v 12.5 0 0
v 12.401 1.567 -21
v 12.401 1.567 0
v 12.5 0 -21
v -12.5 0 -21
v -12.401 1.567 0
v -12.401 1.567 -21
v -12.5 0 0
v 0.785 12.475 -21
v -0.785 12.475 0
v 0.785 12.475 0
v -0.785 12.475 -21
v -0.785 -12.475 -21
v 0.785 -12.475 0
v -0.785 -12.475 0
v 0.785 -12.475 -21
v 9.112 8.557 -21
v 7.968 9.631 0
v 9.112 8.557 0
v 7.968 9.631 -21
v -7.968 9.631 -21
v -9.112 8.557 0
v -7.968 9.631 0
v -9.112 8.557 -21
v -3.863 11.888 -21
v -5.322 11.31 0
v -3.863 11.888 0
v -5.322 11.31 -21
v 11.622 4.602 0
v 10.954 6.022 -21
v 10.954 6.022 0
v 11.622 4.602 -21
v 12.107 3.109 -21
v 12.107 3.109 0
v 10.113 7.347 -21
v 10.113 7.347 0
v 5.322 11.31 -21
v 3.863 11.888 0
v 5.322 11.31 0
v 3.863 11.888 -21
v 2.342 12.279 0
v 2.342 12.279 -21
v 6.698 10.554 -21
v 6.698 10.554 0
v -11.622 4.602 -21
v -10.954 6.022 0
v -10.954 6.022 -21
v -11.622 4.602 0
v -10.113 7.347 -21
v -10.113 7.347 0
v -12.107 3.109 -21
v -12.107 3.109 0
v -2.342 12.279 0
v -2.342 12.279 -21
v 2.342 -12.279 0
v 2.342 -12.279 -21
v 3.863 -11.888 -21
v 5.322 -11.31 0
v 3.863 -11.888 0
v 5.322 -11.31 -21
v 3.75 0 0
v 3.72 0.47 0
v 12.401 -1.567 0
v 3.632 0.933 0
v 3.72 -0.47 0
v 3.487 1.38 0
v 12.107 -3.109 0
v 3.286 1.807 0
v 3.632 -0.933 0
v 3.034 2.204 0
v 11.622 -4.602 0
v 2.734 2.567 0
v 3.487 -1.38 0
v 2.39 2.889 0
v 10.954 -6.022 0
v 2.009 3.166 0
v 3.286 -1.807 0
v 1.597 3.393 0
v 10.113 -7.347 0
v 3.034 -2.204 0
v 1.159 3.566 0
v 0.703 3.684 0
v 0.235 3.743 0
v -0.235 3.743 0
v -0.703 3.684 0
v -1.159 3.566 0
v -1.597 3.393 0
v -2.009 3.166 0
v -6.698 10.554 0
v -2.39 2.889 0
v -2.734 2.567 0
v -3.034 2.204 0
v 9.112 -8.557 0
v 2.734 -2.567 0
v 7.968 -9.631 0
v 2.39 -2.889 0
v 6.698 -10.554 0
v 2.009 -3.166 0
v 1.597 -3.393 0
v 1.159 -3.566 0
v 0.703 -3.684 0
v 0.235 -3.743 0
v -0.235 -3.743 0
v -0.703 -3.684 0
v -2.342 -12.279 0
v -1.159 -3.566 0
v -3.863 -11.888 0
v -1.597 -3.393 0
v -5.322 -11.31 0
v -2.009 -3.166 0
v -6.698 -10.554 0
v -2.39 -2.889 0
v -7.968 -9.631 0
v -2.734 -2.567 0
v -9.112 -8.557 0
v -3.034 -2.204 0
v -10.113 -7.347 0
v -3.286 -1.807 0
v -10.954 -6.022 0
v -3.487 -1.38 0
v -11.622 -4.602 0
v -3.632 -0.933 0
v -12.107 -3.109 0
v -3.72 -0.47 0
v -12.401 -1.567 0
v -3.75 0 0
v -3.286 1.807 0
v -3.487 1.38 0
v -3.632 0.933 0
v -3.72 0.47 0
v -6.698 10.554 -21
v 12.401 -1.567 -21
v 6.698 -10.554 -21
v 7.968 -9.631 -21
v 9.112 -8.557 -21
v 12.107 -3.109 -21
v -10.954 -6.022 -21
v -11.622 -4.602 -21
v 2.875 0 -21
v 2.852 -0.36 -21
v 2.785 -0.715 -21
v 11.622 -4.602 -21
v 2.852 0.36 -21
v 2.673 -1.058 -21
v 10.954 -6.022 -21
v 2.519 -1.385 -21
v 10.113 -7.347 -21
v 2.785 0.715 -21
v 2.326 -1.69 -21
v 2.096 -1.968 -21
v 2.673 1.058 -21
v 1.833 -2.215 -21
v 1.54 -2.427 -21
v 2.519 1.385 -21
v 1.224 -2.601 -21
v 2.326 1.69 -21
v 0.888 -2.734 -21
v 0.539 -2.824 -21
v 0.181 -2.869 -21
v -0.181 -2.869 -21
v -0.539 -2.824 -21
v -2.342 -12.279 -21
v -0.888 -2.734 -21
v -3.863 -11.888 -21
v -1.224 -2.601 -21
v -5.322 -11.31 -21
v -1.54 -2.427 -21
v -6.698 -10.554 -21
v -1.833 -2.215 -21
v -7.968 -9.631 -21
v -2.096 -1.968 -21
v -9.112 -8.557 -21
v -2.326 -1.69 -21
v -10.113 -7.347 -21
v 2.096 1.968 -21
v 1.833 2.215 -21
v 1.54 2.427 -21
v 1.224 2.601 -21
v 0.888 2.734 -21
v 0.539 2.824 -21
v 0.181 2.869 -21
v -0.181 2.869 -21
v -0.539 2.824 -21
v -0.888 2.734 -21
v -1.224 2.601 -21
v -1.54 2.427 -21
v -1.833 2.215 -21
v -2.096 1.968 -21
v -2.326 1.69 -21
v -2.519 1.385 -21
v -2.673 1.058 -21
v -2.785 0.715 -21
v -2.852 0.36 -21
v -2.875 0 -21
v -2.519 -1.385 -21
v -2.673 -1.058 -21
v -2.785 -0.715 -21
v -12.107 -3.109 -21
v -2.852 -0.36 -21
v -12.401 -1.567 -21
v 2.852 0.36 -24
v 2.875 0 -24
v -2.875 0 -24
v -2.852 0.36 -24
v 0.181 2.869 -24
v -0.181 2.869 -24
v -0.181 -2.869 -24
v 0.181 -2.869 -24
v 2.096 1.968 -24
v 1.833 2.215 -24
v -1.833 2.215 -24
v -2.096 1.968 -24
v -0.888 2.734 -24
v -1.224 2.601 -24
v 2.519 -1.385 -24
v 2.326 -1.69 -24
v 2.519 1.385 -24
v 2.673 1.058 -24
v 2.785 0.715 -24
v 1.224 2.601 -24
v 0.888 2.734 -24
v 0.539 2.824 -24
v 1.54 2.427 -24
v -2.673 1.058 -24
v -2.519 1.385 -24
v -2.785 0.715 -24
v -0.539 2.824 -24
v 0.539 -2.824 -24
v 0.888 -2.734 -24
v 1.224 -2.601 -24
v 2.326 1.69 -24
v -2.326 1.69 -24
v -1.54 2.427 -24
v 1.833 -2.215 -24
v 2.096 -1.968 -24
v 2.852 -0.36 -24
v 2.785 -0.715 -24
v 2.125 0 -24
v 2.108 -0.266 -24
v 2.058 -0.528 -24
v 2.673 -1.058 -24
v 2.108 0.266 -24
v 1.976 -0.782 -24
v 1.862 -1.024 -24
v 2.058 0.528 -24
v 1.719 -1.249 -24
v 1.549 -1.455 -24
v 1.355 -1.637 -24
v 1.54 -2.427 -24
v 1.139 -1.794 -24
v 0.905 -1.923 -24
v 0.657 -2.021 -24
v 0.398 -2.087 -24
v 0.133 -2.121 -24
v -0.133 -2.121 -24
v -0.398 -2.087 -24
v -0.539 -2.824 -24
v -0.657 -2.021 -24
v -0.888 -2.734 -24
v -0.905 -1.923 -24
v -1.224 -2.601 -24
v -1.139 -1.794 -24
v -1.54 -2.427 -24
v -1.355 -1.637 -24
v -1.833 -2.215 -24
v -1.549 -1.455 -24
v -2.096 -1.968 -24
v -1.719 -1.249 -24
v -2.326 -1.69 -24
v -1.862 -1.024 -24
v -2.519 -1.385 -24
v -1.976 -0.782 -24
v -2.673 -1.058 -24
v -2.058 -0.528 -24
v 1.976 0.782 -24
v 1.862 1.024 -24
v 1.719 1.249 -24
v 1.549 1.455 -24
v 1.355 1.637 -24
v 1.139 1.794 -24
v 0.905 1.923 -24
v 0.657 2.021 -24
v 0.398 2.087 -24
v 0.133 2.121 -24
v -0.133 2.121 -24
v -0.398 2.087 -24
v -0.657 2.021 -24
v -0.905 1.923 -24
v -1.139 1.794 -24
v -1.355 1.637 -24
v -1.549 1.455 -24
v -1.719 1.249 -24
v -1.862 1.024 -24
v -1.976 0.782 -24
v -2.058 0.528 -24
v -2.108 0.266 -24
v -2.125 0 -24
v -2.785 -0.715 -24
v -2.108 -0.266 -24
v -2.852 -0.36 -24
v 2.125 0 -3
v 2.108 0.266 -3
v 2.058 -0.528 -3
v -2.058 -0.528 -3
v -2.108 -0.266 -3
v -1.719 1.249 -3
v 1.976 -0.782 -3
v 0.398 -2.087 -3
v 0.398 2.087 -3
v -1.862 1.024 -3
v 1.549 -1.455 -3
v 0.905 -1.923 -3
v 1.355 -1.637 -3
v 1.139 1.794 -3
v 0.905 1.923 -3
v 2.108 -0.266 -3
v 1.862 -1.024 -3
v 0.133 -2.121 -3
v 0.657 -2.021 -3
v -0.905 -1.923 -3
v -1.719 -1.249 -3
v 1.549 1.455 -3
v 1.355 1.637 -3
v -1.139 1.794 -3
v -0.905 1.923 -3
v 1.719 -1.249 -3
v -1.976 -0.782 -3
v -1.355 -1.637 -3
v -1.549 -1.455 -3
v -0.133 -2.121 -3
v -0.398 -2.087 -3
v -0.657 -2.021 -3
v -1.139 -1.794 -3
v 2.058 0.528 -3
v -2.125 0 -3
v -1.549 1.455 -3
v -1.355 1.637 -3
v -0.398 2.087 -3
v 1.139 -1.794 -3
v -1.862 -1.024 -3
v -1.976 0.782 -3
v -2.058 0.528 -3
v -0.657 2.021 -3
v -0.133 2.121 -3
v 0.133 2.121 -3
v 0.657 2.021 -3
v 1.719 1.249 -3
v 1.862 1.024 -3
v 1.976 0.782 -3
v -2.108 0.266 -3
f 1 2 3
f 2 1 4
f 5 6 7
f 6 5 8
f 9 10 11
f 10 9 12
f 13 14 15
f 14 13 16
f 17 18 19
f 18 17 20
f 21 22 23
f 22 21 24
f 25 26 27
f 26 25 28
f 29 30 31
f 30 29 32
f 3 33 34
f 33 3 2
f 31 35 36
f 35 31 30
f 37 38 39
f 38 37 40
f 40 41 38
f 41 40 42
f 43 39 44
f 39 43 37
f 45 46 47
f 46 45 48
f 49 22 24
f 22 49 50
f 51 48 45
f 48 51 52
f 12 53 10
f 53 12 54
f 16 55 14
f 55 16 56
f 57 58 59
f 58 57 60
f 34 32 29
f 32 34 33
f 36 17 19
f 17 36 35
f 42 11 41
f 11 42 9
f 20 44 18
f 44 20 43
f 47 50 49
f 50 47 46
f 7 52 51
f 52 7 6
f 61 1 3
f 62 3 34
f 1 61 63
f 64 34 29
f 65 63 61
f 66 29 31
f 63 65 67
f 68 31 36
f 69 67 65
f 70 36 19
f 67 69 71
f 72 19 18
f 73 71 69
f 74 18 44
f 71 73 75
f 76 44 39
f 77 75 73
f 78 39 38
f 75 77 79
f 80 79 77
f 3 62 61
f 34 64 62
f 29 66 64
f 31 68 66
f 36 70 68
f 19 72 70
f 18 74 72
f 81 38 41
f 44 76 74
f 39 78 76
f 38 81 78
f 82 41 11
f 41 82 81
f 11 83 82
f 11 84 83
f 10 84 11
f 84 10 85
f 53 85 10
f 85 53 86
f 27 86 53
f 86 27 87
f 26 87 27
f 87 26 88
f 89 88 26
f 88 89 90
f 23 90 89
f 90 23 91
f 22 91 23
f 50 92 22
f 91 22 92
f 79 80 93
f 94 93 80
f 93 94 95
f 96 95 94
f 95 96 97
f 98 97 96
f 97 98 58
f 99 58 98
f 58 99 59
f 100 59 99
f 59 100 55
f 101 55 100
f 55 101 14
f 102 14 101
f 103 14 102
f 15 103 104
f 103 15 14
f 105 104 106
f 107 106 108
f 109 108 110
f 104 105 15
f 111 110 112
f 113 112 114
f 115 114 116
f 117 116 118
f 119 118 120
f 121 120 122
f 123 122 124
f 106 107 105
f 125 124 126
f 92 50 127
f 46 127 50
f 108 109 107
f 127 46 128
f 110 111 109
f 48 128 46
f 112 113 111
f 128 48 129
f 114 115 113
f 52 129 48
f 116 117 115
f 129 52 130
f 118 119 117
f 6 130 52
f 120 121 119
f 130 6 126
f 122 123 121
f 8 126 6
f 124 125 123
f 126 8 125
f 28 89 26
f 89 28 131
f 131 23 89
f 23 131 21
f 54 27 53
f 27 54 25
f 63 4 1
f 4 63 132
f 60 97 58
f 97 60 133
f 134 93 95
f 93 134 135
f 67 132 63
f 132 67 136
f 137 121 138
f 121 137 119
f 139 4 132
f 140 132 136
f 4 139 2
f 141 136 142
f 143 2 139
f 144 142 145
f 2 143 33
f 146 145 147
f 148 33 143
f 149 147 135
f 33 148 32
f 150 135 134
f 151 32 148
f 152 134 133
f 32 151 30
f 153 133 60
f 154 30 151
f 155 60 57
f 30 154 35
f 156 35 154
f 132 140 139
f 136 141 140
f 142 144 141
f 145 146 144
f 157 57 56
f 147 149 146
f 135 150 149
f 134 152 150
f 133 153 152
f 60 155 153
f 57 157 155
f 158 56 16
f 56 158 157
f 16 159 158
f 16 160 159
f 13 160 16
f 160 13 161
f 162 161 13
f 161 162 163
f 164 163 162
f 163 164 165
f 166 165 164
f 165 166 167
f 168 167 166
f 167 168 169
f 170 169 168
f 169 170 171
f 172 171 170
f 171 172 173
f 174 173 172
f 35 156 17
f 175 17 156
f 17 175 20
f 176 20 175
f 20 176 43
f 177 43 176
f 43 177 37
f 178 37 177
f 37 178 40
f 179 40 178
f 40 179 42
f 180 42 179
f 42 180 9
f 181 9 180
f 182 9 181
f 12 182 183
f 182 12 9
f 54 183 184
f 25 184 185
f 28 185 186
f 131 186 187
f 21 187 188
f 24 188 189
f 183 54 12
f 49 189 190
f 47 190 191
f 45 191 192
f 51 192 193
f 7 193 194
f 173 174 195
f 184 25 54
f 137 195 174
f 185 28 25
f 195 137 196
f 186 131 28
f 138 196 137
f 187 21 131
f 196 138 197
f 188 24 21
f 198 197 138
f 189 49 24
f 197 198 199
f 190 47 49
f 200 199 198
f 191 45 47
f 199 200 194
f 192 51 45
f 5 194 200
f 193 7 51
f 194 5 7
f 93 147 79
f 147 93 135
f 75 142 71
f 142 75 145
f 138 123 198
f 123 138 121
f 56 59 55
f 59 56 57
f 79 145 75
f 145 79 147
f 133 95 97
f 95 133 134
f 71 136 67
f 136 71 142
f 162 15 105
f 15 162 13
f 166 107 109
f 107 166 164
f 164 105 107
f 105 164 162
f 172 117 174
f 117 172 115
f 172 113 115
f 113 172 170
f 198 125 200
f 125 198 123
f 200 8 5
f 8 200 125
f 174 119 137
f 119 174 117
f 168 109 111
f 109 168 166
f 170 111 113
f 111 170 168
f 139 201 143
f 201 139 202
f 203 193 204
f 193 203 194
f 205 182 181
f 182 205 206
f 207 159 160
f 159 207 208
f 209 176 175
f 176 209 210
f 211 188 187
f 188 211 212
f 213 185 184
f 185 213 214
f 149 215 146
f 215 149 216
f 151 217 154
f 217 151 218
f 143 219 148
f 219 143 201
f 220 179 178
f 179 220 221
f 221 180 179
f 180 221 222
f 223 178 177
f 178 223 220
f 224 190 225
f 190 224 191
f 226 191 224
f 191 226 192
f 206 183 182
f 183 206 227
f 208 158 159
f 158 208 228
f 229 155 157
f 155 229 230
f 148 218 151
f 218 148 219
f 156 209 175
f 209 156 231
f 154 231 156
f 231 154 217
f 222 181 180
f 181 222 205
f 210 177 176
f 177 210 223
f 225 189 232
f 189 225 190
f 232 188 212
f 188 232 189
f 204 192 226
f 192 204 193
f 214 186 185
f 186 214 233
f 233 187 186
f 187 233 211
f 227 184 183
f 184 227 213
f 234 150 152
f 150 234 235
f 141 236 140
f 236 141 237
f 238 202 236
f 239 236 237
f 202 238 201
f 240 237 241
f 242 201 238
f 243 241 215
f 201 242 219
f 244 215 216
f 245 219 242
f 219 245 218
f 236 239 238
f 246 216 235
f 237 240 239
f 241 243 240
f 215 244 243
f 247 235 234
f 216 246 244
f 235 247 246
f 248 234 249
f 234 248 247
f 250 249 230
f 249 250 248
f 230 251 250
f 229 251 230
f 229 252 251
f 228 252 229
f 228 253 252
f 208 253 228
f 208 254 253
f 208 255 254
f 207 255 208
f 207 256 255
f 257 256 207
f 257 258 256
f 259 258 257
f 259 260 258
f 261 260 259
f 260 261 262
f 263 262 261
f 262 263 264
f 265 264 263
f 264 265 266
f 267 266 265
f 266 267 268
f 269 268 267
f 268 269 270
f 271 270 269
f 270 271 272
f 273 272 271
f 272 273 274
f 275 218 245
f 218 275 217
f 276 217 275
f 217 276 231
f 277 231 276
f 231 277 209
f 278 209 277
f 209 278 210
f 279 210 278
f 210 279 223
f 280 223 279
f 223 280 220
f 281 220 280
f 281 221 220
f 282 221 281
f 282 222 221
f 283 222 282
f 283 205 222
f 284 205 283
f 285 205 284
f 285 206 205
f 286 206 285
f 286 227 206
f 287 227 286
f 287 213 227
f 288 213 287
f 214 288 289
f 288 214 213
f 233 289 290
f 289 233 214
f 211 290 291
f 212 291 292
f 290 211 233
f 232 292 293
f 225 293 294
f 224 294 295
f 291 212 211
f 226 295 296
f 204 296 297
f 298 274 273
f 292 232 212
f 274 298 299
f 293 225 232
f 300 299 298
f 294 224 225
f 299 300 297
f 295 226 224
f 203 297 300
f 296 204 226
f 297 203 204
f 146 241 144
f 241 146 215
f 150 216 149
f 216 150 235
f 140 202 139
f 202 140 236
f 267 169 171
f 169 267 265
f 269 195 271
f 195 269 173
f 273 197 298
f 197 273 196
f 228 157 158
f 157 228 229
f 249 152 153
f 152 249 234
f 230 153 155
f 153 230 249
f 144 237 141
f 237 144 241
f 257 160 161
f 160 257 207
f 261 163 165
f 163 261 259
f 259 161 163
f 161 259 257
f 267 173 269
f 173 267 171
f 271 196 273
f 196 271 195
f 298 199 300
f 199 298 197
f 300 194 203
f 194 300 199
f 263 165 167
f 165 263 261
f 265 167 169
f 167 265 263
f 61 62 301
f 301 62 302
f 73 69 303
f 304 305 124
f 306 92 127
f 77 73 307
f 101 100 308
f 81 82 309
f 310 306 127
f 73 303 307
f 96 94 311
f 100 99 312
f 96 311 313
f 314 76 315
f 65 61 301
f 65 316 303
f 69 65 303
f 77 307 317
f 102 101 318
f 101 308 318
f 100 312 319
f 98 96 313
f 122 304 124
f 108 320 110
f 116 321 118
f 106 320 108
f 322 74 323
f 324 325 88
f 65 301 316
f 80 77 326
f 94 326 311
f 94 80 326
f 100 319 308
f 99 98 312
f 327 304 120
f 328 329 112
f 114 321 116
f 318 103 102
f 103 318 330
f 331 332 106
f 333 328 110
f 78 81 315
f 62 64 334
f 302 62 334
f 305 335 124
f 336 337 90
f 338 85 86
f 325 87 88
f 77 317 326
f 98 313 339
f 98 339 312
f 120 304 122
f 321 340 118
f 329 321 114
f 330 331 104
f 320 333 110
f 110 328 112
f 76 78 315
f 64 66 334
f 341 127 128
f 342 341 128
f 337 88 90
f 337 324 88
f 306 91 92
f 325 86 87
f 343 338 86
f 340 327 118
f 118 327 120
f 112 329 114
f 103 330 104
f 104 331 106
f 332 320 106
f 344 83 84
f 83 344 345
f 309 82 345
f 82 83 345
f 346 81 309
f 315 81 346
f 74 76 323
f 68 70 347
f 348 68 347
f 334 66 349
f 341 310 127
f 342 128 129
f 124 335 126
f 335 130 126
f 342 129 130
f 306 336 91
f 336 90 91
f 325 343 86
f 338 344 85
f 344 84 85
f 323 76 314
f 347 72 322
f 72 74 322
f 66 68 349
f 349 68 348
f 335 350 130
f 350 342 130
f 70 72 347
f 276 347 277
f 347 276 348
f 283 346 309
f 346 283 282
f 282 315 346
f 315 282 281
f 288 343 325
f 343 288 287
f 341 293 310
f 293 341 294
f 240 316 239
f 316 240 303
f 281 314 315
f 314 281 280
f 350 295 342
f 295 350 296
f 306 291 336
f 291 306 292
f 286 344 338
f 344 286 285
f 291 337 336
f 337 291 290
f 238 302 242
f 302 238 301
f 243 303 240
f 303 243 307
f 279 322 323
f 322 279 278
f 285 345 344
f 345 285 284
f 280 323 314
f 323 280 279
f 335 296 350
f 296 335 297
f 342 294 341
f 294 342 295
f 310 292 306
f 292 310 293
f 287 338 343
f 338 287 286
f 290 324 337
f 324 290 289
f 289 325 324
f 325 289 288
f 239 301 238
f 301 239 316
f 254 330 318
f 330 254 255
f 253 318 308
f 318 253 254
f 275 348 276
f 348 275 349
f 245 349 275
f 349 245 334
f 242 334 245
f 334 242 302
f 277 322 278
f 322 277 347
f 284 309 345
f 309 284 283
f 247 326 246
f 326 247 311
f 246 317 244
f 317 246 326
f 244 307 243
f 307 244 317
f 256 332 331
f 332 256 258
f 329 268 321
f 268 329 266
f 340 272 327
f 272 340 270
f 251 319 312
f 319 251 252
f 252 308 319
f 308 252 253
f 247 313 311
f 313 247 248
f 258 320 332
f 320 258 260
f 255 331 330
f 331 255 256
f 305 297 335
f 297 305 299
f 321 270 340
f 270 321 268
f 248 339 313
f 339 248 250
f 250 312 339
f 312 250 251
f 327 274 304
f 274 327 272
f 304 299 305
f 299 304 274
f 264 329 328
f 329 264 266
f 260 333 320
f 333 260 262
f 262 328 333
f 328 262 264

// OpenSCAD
$fn = 50;

difference() {
	union() {
		translate(v = [0, 0, -21.0]) {
			cylinder(h = 21, r = 12.5);
		}
		#translate(v = [0, 0, -24.0]) {
			cylinder(h = 24, r = 2.875);
		}
	}
	union() {
		translate(v = [0, 0, 0]) {
			rotate(a = [0, 0, 0]) {
				difference() {
					union() {
						translate(v = [0, 0, -24.0]) {
							cylinder(h = 24, r = 2.0);
						}
						translate(v = [0, 0, -3]) {
							cylinder(h = 3, r1 = 2.125, r2 = 3.75);
						}
						translate(v = [0, 0, -24.0]) {
							cylinder(h = 24, r = 2.125);
						}
						translate(v = [0, 0, -24.0]) {
							cylinder(h = 24, r = 2.0);
						}
					}
					union();
				}
			}
		}
	}
}
